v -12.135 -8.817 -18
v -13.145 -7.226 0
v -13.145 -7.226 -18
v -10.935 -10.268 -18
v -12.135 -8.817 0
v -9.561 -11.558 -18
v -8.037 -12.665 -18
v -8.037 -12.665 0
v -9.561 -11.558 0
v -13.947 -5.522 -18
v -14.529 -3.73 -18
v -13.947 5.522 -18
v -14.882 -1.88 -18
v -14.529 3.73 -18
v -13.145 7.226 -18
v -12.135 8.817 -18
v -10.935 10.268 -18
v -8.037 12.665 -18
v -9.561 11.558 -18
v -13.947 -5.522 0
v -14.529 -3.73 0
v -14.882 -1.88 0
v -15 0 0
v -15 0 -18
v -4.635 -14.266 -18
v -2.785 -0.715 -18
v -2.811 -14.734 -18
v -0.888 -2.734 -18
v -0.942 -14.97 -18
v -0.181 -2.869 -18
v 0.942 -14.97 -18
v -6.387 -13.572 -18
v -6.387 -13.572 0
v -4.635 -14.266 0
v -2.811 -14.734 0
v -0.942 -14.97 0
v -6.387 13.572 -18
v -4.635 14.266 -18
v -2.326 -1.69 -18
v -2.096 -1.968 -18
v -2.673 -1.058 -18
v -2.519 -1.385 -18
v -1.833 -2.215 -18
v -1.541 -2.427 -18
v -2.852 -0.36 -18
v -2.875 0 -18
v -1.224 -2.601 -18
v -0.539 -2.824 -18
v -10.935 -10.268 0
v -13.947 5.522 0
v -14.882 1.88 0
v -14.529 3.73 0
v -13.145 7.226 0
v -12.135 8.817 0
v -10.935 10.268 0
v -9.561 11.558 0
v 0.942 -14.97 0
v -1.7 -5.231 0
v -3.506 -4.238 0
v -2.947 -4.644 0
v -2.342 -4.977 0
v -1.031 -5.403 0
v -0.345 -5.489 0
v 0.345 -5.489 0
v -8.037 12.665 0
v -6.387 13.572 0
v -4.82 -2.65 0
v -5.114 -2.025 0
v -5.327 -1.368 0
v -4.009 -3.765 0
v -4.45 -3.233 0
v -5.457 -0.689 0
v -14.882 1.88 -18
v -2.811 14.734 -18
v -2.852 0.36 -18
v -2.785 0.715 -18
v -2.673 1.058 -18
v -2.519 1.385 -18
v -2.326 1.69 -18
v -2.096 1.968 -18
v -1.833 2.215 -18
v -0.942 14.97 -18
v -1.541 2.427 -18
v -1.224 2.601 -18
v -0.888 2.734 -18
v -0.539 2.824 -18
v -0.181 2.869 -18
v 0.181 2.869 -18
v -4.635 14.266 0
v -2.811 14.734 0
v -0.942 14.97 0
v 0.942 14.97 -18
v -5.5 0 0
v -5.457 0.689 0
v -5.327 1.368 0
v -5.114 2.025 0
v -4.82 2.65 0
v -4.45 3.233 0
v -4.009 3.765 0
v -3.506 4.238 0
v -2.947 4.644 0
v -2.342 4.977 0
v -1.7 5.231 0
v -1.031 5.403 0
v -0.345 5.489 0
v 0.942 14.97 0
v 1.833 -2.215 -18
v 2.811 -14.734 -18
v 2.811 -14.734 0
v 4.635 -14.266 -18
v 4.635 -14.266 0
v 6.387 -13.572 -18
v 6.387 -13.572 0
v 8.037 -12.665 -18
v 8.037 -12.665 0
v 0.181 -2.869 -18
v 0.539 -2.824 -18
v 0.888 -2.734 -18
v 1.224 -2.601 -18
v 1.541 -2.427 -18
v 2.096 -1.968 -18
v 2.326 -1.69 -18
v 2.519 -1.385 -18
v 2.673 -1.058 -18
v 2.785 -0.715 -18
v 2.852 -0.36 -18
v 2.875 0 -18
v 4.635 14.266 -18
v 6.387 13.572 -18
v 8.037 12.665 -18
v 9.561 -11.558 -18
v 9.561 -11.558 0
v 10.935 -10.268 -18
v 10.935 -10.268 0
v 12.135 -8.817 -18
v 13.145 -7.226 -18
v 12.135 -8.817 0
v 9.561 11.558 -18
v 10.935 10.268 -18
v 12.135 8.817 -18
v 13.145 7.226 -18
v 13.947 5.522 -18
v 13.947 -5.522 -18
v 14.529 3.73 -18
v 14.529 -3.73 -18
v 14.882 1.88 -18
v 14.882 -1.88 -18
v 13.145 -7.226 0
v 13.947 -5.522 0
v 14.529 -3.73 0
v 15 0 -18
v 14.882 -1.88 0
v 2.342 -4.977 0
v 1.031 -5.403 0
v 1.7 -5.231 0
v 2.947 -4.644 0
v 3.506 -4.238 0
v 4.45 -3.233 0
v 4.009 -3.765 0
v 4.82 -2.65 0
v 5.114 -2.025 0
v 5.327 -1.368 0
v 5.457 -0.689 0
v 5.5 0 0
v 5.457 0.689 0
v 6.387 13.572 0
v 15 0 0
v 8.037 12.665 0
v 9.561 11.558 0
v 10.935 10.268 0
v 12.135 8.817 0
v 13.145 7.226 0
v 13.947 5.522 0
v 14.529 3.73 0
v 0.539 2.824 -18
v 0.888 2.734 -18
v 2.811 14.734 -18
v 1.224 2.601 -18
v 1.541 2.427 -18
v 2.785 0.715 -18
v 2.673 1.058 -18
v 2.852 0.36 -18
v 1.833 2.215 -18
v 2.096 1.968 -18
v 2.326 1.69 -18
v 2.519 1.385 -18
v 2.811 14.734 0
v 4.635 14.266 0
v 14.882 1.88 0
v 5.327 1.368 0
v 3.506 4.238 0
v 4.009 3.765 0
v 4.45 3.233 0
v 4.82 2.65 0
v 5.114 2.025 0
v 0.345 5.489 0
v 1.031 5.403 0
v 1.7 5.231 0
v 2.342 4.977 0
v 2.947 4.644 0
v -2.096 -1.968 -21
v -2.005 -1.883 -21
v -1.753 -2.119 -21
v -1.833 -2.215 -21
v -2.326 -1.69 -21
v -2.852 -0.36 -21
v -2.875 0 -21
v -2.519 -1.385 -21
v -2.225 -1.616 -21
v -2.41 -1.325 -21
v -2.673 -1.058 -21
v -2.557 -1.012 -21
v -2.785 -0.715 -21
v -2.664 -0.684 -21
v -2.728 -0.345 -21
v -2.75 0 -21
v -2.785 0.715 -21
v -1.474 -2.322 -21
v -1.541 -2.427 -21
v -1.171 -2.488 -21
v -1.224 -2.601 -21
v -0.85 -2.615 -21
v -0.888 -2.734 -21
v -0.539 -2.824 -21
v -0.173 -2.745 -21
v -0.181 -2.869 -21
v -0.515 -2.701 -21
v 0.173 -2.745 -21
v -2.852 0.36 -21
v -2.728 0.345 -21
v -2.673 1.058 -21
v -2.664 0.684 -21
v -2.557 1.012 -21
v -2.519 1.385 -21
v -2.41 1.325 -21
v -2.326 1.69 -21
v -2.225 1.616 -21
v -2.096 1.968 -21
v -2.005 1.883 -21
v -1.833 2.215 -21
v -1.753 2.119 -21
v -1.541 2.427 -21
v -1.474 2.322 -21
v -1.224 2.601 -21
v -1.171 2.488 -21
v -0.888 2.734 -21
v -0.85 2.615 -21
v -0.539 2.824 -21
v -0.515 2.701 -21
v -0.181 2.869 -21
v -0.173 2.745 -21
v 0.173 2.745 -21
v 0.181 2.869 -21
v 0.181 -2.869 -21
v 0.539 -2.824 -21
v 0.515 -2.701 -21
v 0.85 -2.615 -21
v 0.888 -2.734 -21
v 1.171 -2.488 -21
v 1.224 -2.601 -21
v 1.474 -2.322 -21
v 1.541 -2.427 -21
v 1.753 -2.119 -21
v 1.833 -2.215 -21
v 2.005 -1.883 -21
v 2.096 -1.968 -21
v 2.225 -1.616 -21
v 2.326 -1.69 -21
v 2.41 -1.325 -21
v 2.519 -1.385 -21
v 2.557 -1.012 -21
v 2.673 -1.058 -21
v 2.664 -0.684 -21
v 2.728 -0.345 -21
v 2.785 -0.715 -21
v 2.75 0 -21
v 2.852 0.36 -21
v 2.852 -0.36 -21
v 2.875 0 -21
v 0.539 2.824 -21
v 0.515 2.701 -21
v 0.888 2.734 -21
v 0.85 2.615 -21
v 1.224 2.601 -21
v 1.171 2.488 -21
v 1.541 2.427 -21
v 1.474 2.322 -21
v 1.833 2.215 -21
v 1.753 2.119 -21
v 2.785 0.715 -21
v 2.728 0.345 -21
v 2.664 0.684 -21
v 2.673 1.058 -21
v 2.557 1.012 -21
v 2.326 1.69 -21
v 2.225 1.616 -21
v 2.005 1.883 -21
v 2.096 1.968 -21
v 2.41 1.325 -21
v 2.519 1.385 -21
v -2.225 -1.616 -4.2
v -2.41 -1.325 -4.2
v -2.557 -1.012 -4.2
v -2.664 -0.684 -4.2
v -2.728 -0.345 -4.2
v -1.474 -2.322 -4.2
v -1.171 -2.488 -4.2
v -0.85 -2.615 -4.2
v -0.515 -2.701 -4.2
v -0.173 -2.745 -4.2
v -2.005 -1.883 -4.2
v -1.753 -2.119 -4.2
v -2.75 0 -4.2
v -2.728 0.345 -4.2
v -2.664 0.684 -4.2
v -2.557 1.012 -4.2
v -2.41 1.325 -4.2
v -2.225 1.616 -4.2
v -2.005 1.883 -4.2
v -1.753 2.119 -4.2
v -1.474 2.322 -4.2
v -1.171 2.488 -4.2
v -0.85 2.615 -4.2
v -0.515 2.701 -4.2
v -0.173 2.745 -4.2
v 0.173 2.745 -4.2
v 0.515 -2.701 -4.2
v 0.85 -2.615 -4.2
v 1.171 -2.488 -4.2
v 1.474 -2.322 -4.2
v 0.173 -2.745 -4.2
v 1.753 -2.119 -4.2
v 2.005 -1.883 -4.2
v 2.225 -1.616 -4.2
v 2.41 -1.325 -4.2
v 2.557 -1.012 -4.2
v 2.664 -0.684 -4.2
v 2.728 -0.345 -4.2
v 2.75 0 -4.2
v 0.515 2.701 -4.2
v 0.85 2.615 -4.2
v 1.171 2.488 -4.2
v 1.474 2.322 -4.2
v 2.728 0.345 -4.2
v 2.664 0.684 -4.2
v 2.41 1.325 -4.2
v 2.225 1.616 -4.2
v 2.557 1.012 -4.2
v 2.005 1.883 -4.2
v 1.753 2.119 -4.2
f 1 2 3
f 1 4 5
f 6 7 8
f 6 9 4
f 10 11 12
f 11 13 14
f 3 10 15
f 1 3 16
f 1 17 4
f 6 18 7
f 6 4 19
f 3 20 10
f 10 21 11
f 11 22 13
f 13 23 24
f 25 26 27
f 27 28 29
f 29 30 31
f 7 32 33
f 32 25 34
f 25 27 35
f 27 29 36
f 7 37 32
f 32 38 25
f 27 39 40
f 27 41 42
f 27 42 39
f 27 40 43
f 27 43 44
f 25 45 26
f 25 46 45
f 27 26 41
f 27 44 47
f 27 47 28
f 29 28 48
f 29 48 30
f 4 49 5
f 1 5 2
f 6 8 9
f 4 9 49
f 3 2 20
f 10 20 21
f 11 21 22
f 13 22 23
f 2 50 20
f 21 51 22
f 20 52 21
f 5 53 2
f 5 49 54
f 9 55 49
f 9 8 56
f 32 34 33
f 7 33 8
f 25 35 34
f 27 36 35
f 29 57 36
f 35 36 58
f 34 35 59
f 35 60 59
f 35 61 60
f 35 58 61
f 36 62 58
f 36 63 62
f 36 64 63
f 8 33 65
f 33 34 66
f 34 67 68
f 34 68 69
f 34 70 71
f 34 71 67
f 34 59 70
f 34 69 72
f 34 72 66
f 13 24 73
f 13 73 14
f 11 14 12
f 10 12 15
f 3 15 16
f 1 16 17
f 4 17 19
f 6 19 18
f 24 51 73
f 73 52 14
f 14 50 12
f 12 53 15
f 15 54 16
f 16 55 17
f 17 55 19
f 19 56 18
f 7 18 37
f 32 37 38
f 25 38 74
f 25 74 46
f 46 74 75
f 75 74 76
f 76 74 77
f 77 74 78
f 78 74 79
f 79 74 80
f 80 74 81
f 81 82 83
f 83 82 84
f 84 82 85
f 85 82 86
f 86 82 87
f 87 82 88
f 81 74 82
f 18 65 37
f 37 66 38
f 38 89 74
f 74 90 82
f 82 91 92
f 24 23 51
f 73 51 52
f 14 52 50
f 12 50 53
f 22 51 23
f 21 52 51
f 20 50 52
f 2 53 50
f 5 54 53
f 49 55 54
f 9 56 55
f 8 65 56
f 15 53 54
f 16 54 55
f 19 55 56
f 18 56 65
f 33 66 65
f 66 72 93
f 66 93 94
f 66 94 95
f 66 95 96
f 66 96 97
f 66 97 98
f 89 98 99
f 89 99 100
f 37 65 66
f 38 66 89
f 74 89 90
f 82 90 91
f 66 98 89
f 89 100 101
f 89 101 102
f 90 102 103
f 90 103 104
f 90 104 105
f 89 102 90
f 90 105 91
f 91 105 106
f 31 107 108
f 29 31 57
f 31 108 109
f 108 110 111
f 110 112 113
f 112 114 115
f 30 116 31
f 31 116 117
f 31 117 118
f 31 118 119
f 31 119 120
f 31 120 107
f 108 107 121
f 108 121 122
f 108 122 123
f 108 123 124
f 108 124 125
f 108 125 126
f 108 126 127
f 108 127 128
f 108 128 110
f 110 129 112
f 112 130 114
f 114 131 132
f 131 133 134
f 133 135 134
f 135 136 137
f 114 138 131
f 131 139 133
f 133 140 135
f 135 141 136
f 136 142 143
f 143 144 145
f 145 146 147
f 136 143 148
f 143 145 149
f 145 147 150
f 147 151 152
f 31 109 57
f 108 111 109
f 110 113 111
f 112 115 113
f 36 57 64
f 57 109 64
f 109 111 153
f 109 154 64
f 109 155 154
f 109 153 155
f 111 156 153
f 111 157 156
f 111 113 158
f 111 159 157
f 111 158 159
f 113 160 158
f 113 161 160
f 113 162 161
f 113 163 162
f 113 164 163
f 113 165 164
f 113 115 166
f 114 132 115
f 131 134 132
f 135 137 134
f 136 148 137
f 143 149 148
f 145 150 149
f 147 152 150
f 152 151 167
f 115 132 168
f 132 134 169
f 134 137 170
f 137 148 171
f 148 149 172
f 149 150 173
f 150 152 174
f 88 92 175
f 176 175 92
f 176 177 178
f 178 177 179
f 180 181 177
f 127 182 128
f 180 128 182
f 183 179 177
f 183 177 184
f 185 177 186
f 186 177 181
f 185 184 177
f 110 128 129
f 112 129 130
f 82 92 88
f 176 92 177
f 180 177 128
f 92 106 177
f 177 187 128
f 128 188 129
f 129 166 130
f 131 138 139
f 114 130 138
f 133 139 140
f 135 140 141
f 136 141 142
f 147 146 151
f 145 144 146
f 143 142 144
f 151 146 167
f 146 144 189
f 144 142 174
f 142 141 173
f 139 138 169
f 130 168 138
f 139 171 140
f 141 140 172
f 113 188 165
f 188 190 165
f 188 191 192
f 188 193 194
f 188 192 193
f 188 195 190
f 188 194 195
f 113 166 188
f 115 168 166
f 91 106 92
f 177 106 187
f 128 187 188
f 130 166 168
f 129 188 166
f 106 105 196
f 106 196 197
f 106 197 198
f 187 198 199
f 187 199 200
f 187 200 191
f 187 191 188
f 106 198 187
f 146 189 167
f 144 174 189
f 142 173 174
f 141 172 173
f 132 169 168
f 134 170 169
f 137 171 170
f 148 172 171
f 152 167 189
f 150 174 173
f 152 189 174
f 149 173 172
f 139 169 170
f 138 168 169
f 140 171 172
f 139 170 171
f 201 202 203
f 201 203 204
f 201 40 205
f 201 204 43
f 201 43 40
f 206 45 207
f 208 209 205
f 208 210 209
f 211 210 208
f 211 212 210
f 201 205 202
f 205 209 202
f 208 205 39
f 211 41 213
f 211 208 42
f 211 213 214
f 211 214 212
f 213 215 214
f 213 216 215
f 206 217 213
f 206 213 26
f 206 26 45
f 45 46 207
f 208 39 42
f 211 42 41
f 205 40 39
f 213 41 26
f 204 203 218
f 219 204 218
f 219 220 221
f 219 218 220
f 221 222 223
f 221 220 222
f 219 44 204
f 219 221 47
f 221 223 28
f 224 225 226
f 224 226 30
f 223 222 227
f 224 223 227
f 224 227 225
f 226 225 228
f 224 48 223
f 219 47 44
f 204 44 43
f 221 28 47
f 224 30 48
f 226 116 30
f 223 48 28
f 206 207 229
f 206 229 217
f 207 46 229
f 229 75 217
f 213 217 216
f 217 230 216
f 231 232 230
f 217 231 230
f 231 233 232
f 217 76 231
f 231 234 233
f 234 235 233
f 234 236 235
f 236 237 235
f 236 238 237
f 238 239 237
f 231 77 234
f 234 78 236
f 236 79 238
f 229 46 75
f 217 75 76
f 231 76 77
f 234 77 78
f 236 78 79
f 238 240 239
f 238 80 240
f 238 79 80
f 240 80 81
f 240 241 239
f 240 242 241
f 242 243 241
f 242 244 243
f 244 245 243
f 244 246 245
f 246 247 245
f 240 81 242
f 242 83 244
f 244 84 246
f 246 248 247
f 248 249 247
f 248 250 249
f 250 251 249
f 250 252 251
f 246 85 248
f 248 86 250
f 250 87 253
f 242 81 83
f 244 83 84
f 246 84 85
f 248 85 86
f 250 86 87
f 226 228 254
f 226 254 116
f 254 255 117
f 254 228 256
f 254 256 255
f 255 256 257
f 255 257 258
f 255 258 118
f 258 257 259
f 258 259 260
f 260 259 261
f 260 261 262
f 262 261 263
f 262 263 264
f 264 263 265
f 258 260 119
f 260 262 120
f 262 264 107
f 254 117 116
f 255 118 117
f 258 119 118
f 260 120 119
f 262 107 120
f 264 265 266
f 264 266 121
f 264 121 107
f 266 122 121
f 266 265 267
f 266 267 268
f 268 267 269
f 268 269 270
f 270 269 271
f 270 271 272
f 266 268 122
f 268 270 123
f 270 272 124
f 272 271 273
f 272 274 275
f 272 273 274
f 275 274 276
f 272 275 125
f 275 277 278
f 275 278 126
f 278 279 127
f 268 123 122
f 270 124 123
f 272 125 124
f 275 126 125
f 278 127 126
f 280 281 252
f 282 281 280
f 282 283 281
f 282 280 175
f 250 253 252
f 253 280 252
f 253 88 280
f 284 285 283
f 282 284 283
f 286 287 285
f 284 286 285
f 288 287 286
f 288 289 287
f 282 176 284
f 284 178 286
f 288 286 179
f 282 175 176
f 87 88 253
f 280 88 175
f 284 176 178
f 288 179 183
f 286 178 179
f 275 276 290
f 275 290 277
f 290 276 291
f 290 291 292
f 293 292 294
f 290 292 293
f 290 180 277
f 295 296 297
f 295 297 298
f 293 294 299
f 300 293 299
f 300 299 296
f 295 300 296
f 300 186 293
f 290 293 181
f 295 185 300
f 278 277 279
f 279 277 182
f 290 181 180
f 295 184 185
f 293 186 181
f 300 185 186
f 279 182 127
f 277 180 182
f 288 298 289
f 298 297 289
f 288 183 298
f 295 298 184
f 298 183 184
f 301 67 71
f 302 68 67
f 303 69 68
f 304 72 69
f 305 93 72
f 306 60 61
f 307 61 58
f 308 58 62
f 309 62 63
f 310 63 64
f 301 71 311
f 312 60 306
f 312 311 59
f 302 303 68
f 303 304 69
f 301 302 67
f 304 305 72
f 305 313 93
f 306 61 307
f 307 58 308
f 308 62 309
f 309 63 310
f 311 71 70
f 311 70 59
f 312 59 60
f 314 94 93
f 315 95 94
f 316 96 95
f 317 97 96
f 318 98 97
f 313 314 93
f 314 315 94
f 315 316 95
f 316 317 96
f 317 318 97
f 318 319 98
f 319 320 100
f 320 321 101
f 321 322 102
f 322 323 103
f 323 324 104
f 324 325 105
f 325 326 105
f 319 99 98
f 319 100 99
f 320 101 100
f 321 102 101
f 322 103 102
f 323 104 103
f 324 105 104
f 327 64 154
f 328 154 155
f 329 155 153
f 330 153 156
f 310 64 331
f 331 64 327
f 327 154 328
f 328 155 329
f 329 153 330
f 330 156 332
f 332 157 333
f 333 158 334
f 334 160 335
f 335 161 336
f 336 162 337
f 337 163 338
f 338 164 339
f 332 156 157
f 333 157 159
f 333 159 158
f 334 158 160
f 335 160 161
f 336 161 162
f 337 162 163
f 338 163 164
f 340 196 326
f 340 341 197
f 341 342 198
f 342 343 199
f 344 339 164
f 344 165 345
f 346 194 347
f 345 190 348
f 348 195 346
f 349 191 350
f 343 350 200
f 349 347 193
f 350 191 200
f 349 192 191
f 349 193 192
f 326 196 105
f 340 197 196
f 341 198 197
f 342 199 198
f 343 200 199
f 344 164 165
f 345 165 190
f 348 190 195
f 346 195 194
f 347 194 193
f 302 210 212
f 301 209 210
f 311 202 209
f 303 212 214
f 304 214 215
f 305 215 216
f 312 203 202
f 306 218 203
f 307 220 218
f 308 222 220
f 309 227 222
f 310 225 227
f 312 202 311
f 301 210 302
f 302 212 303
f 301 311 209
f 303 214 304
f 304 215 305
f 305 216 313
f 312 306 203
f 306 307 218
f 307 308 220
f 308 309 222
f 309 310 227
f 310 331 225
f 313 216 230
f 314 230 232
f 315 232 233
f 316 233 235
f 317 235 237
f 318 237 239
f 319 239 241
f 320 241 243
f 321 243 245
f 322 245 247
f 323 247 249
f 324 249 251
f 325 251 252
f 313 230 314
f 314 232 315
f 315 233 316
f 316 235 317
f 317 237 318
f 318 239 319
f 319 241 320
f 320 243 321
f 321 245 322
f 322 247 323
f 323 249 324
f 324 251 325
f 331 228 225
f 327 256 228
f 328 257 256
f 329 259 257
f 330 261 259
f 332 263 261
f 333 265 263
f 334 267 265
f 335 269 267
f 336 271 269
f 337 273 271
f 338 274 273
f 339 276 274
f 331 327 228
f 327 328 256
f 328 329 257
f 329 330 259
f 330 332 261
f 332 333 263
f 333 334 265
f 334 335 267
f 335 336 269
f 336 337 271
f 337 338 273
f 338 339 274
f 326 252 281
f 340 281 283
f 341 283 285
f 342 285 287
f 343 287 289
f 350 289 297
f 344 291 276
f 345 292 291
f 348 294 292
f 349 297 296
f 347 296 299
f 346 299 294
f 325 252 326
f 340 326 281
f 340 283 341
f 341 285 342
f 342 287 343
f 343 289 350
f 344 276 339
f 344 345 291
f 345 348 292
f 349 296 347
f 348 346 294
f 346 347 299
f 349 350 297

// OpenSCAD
$fn = 50;

difference() {
	union() {
		translate(v = [0, 0, -18.0]) {
			cylinder(h = 18, r = 15.0);
		}
		#translate(v = [0, 0, -21.0]) {
			cylinder(h = 21, r = 2.875);
		}
	}
	union() {
		translate(v = [0, 0, 0]) {
			rotate(a = [0, 0, 0]) {
				difference() {
					union() {
						translate(v = [0, 0, -21.0]) {
							cylinder(h = 21, r = 2.25);
						}
						translate(v = [0, 0, -4.2]) {
							cylinder(h = 4.2, r1 = 2.75, r2 = 5.5);
						}
						translate(v = [0, 0, -21.0]) {
							cylinder(h = 21, r = 2.75);
						}
						translate(v = [0, 0, -21.0]) {
							cylinder(h = 21, r = 2.25);
						}
					}
					union();
				}
			}
		}
	}
}
